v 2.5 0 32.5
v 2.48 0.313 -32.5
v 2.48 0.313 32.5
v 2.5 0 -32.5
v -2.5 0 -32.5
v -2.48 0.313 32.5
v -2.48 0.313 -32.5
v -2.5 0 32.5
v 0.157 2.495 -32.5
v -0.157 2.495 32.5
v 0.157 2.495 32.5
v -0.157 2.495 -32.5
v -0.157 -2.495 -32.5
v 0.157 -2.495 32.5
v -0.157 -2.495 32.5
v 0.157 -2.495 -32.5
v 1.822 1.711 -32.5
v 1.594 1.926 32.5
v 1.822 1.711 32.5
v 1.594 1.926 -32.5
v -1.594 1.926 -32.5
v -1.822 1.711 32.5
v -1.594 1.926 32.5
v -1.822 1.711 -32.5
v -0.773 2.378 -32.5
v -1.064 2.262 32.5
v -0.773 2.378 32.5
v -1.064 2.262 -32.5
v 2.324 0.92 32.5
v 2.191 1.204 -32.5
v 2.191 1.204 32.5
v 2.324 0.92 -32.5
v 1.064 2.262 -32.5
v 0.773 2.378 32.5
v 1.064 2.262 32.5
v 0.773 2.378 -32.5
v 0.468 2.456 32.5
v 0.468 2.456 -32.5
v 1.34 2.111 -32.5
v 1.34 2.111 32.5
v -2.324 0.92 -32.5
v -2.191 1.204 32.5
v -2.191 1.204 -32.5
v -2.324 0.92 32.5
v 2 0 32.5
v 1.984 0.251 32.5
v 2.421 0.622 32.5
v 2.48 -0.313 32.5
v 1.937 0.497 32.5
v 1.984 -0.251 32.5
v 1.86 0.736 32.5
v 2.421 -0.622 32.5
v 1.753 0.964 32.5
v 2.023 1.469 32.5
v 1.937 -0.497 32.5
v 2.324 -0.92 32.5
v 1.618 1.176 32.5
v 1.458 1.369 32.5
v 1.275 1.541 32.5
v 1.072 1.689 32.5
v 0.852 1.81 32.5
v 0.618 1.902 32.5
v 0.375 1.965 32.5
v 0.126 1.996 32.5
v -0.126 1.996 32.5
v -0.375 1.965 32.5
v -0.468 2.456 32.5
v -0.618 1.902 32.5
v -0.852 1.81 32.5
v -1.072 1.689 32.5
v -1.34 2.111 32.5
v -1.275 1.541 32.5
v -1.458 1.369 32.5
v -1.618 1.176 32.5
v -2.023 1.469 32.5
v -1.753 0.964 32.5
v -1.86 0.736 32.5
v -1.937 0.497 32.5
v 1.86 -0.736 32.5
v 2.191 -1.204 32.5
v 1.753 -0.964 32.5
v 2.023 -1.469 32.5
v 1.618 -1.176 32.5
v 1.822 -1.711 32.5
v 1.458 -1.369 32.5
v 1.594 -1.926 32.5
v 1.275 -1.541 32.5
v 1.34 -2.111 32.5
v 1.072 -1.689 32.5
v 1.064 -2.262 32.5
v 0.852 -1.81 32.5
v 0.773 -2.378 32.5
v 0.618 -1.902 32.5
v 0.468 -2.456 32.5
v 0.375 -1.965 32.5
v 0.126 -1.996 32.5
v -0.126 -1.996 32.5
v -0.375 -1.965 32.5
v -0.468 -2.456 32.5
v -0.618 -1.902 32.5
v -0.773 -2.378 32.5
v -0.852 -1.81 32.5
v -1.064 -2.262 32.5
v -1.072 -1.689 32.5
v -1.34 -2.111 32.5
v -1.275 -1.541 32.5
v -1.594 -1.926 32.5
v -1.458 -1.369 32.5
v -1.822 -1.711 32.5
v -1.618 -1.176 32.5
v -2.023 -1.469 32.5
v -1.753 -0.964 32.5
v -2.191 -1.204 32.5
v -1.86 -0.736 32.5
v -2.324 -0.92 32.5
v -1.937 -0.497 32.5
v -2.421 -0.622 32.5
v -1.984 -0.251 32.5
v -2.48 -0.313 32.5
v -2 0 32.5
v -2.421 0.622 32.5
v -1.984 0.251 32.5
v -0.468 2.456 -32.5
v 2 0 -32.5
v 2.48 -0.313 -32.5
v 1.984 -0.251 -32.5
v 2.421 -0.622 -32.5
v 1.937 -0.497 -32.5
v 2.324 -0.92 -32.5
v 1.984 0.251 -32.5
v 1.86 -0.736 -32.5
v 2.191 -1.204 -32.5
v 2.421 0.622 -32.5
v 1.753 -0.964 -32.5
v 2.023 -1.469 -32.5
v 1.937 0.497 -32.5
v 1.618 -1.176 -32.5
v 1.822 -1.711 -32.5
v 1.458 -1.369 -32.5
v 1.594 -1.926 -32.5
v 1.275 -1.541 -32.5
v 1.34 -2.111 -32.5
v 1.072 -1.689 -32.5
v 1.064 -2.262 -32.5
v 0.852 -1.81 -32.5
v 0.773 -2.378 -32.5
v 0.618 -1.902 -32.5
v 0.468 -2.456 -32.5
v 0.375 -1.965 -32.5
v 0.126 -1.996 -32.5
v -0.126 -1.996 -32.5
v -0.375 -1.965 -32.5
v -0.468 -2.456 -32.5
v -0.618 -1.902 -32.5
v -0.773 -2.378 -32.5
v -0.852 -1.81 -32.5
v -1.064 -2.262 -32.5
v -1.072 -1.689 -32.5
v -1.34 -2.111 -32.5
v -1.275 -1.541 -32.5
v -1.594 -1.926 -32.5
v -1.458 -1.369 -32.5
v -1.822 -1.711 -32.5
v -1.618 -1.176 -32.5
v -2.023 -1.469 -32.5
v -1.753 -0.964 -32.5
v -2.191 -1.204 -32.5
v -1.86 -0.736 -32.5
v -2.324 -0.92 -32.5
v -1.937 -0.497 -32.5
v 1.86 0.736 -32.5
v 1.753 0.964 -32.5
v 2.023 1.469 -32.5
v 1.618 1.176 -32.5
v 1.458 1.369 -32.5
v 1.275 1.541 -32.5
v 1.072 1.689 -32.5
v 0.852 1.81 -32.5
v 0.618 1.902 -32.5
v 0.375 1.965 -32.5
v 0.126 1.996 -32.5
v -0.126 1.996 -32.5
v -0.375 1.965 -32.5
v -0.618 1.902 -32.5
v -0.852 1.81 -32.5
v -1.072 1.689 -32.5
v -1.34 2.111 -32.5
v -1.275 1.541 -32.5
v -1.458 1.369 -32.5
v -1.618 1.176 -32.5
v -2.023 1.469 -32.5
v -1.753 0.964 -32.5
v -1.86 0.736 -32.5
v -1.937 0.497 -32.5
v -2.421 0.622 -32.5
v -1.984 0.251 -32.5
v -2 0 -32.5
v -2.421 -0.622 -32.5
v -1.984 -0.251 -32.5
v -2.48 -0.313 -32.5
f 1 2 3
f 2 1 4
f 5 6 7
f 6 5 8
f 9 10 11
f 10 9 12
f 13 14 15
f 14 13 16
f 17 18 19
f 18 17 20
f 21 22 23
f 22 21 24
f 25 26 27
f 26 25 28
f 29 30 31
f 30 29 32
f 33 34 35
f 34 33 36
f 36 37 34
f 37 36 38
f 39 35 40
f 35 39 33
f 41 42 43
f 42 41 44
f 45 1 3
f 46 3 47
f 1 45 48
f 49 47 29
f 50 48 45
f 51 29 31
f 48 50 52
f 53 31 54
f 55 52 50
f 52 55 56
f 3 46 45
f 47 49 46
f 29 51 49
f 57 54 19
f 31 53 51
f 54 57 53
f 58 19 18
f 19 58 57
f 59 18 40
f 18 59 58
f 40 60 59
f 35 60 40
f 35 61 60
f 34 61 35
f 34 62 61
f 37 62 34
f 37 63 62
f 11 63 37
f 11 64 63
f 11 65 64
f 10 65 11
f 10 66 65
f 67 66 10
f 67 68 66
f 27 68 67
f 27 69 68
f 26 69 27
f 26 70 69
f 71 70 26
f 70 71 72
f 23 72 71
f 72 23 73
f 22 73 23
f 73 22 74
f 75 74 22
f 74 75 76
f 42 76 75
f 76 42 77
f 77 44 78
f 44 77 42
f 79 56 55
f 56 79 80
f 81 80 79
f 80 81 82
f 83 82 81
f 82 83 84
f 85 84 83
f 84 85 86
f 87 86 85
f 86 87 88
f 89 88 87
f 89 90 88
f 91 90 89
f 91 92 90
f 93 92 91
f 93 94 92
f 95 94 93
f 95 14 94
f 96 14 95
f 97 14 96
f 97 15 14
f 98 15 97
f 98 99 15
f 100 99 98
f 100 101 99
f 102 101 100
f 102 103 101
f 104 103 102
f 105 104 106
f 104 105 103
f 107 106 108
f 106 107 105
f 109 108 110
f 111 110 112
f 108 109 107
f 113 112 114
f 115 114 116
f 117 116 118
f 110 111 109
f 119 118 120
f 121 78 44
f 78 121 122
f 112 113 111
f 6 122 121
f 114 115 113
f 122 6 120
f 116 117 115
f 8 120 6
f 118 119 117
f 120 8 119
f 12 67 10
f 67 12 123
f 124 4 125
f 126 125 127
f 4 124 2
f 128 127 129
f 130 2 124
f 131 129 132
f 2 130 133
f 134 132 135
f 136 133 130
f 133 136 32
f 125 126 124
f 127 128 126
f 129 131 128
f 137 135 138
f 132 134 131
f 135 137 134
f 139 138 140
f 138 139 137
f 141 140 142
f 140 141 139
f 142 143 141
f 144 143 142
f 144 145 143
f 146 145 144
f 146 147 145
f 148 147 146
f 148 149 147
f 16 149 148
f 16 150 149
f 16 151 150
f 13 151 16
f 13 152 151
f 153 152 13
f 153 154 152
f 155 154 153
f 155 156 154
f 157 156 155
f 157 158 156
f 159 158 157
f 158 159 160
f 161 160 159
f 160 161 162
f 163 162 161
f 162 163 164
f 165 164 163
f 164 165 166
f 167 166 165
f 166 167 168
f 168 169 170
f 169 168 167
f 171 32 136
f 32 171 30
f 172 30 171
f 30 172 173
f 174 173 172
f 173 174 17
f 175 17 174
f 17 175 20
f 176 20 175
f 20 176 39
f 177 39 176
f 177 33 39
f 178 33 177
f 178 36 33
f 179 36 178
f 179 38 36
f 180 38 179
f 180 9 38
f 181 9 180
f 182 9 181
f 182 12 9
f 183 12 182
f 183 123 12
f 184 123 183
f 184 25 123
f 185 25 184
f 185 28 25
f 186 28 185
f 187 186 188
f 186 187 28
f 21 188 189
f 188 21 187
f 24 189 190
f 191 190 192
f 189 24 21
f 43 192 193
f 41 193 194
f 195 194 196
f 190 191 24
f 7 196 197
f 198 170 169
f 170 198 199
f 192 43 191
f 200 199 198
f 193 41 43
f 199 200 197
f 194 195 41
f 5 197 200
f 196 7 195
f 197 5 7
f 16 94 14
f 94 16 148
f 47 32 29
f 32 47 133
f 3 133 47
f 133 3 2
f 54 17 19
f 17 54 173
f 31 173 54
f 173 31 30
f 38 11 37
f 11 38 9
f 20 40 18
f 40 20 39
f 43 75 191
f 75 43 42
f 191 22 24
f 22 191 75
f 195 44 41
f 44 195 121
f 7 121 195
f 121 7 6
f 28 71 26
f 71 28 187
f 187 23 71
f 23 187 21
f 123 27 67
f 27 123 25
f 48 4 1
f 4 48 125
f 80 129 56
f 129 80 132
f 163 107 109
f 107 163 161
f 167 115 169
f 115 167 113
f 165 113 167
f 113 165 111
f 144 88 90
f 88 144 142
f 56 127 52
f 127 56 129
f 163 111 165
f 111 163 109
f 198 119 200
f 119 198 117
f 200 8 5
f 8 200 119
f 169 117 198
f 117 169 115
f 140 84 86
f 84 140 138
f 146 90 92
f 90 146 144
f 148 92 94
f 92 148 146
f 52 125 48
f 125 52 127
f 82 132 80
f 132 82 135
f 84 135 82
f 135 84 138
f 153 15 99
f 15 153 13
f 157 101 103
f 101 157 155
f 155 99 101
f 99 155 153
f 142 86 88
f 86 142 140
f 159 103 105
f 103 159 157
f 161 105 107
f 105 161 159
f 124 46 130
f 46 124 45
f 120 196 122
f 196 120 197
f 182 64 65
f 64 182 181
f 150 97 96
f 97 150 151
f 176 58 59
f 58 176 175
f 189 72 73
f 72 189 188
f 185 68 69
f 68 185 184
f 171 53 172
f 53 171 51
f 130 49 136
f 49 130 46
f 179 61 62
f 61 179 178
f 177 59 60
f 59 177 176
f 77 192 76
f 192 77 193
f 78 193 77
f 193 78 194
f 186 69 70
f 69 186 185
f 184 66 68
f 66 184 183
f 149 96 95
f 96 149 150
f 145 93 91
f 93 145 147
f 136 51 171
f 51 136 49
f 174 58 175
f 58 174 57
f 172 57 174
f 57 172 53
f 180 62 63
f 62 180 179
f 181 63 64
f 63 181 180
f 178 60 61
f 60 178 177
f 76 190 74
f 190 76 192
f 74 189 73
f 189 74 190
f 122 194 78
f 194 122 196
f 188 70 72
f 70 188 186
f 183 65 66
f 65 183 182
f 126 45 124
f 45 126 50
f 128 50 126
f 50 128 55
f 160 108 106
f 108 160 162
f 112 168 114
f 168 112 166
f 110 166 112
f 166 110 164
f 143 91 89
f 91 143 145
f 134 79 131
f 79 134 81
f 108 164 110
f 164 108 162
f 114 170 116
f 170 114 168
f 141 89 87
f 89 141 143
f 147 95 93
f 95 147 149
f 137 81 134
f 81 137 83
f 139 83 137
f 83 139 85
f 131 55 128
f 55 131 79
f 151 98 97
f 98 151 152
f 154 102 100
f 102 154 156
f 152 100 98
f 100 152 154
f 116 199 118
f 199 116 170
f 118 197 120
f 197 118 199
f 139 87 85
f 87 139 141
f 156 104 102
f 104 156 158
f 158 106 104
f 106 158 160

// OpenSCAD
$fn = 50;


difference() {
	union() {
		translate(v = [0, 0, -32.5000000000]) {
			cylinder(h = 65, r = 2.5000000000);
		}
	}
	union() {
		translate(v = [0, 0, -100.0000000000]) {
			cylinder(h = 200, r = 2);
		}
	}
}
